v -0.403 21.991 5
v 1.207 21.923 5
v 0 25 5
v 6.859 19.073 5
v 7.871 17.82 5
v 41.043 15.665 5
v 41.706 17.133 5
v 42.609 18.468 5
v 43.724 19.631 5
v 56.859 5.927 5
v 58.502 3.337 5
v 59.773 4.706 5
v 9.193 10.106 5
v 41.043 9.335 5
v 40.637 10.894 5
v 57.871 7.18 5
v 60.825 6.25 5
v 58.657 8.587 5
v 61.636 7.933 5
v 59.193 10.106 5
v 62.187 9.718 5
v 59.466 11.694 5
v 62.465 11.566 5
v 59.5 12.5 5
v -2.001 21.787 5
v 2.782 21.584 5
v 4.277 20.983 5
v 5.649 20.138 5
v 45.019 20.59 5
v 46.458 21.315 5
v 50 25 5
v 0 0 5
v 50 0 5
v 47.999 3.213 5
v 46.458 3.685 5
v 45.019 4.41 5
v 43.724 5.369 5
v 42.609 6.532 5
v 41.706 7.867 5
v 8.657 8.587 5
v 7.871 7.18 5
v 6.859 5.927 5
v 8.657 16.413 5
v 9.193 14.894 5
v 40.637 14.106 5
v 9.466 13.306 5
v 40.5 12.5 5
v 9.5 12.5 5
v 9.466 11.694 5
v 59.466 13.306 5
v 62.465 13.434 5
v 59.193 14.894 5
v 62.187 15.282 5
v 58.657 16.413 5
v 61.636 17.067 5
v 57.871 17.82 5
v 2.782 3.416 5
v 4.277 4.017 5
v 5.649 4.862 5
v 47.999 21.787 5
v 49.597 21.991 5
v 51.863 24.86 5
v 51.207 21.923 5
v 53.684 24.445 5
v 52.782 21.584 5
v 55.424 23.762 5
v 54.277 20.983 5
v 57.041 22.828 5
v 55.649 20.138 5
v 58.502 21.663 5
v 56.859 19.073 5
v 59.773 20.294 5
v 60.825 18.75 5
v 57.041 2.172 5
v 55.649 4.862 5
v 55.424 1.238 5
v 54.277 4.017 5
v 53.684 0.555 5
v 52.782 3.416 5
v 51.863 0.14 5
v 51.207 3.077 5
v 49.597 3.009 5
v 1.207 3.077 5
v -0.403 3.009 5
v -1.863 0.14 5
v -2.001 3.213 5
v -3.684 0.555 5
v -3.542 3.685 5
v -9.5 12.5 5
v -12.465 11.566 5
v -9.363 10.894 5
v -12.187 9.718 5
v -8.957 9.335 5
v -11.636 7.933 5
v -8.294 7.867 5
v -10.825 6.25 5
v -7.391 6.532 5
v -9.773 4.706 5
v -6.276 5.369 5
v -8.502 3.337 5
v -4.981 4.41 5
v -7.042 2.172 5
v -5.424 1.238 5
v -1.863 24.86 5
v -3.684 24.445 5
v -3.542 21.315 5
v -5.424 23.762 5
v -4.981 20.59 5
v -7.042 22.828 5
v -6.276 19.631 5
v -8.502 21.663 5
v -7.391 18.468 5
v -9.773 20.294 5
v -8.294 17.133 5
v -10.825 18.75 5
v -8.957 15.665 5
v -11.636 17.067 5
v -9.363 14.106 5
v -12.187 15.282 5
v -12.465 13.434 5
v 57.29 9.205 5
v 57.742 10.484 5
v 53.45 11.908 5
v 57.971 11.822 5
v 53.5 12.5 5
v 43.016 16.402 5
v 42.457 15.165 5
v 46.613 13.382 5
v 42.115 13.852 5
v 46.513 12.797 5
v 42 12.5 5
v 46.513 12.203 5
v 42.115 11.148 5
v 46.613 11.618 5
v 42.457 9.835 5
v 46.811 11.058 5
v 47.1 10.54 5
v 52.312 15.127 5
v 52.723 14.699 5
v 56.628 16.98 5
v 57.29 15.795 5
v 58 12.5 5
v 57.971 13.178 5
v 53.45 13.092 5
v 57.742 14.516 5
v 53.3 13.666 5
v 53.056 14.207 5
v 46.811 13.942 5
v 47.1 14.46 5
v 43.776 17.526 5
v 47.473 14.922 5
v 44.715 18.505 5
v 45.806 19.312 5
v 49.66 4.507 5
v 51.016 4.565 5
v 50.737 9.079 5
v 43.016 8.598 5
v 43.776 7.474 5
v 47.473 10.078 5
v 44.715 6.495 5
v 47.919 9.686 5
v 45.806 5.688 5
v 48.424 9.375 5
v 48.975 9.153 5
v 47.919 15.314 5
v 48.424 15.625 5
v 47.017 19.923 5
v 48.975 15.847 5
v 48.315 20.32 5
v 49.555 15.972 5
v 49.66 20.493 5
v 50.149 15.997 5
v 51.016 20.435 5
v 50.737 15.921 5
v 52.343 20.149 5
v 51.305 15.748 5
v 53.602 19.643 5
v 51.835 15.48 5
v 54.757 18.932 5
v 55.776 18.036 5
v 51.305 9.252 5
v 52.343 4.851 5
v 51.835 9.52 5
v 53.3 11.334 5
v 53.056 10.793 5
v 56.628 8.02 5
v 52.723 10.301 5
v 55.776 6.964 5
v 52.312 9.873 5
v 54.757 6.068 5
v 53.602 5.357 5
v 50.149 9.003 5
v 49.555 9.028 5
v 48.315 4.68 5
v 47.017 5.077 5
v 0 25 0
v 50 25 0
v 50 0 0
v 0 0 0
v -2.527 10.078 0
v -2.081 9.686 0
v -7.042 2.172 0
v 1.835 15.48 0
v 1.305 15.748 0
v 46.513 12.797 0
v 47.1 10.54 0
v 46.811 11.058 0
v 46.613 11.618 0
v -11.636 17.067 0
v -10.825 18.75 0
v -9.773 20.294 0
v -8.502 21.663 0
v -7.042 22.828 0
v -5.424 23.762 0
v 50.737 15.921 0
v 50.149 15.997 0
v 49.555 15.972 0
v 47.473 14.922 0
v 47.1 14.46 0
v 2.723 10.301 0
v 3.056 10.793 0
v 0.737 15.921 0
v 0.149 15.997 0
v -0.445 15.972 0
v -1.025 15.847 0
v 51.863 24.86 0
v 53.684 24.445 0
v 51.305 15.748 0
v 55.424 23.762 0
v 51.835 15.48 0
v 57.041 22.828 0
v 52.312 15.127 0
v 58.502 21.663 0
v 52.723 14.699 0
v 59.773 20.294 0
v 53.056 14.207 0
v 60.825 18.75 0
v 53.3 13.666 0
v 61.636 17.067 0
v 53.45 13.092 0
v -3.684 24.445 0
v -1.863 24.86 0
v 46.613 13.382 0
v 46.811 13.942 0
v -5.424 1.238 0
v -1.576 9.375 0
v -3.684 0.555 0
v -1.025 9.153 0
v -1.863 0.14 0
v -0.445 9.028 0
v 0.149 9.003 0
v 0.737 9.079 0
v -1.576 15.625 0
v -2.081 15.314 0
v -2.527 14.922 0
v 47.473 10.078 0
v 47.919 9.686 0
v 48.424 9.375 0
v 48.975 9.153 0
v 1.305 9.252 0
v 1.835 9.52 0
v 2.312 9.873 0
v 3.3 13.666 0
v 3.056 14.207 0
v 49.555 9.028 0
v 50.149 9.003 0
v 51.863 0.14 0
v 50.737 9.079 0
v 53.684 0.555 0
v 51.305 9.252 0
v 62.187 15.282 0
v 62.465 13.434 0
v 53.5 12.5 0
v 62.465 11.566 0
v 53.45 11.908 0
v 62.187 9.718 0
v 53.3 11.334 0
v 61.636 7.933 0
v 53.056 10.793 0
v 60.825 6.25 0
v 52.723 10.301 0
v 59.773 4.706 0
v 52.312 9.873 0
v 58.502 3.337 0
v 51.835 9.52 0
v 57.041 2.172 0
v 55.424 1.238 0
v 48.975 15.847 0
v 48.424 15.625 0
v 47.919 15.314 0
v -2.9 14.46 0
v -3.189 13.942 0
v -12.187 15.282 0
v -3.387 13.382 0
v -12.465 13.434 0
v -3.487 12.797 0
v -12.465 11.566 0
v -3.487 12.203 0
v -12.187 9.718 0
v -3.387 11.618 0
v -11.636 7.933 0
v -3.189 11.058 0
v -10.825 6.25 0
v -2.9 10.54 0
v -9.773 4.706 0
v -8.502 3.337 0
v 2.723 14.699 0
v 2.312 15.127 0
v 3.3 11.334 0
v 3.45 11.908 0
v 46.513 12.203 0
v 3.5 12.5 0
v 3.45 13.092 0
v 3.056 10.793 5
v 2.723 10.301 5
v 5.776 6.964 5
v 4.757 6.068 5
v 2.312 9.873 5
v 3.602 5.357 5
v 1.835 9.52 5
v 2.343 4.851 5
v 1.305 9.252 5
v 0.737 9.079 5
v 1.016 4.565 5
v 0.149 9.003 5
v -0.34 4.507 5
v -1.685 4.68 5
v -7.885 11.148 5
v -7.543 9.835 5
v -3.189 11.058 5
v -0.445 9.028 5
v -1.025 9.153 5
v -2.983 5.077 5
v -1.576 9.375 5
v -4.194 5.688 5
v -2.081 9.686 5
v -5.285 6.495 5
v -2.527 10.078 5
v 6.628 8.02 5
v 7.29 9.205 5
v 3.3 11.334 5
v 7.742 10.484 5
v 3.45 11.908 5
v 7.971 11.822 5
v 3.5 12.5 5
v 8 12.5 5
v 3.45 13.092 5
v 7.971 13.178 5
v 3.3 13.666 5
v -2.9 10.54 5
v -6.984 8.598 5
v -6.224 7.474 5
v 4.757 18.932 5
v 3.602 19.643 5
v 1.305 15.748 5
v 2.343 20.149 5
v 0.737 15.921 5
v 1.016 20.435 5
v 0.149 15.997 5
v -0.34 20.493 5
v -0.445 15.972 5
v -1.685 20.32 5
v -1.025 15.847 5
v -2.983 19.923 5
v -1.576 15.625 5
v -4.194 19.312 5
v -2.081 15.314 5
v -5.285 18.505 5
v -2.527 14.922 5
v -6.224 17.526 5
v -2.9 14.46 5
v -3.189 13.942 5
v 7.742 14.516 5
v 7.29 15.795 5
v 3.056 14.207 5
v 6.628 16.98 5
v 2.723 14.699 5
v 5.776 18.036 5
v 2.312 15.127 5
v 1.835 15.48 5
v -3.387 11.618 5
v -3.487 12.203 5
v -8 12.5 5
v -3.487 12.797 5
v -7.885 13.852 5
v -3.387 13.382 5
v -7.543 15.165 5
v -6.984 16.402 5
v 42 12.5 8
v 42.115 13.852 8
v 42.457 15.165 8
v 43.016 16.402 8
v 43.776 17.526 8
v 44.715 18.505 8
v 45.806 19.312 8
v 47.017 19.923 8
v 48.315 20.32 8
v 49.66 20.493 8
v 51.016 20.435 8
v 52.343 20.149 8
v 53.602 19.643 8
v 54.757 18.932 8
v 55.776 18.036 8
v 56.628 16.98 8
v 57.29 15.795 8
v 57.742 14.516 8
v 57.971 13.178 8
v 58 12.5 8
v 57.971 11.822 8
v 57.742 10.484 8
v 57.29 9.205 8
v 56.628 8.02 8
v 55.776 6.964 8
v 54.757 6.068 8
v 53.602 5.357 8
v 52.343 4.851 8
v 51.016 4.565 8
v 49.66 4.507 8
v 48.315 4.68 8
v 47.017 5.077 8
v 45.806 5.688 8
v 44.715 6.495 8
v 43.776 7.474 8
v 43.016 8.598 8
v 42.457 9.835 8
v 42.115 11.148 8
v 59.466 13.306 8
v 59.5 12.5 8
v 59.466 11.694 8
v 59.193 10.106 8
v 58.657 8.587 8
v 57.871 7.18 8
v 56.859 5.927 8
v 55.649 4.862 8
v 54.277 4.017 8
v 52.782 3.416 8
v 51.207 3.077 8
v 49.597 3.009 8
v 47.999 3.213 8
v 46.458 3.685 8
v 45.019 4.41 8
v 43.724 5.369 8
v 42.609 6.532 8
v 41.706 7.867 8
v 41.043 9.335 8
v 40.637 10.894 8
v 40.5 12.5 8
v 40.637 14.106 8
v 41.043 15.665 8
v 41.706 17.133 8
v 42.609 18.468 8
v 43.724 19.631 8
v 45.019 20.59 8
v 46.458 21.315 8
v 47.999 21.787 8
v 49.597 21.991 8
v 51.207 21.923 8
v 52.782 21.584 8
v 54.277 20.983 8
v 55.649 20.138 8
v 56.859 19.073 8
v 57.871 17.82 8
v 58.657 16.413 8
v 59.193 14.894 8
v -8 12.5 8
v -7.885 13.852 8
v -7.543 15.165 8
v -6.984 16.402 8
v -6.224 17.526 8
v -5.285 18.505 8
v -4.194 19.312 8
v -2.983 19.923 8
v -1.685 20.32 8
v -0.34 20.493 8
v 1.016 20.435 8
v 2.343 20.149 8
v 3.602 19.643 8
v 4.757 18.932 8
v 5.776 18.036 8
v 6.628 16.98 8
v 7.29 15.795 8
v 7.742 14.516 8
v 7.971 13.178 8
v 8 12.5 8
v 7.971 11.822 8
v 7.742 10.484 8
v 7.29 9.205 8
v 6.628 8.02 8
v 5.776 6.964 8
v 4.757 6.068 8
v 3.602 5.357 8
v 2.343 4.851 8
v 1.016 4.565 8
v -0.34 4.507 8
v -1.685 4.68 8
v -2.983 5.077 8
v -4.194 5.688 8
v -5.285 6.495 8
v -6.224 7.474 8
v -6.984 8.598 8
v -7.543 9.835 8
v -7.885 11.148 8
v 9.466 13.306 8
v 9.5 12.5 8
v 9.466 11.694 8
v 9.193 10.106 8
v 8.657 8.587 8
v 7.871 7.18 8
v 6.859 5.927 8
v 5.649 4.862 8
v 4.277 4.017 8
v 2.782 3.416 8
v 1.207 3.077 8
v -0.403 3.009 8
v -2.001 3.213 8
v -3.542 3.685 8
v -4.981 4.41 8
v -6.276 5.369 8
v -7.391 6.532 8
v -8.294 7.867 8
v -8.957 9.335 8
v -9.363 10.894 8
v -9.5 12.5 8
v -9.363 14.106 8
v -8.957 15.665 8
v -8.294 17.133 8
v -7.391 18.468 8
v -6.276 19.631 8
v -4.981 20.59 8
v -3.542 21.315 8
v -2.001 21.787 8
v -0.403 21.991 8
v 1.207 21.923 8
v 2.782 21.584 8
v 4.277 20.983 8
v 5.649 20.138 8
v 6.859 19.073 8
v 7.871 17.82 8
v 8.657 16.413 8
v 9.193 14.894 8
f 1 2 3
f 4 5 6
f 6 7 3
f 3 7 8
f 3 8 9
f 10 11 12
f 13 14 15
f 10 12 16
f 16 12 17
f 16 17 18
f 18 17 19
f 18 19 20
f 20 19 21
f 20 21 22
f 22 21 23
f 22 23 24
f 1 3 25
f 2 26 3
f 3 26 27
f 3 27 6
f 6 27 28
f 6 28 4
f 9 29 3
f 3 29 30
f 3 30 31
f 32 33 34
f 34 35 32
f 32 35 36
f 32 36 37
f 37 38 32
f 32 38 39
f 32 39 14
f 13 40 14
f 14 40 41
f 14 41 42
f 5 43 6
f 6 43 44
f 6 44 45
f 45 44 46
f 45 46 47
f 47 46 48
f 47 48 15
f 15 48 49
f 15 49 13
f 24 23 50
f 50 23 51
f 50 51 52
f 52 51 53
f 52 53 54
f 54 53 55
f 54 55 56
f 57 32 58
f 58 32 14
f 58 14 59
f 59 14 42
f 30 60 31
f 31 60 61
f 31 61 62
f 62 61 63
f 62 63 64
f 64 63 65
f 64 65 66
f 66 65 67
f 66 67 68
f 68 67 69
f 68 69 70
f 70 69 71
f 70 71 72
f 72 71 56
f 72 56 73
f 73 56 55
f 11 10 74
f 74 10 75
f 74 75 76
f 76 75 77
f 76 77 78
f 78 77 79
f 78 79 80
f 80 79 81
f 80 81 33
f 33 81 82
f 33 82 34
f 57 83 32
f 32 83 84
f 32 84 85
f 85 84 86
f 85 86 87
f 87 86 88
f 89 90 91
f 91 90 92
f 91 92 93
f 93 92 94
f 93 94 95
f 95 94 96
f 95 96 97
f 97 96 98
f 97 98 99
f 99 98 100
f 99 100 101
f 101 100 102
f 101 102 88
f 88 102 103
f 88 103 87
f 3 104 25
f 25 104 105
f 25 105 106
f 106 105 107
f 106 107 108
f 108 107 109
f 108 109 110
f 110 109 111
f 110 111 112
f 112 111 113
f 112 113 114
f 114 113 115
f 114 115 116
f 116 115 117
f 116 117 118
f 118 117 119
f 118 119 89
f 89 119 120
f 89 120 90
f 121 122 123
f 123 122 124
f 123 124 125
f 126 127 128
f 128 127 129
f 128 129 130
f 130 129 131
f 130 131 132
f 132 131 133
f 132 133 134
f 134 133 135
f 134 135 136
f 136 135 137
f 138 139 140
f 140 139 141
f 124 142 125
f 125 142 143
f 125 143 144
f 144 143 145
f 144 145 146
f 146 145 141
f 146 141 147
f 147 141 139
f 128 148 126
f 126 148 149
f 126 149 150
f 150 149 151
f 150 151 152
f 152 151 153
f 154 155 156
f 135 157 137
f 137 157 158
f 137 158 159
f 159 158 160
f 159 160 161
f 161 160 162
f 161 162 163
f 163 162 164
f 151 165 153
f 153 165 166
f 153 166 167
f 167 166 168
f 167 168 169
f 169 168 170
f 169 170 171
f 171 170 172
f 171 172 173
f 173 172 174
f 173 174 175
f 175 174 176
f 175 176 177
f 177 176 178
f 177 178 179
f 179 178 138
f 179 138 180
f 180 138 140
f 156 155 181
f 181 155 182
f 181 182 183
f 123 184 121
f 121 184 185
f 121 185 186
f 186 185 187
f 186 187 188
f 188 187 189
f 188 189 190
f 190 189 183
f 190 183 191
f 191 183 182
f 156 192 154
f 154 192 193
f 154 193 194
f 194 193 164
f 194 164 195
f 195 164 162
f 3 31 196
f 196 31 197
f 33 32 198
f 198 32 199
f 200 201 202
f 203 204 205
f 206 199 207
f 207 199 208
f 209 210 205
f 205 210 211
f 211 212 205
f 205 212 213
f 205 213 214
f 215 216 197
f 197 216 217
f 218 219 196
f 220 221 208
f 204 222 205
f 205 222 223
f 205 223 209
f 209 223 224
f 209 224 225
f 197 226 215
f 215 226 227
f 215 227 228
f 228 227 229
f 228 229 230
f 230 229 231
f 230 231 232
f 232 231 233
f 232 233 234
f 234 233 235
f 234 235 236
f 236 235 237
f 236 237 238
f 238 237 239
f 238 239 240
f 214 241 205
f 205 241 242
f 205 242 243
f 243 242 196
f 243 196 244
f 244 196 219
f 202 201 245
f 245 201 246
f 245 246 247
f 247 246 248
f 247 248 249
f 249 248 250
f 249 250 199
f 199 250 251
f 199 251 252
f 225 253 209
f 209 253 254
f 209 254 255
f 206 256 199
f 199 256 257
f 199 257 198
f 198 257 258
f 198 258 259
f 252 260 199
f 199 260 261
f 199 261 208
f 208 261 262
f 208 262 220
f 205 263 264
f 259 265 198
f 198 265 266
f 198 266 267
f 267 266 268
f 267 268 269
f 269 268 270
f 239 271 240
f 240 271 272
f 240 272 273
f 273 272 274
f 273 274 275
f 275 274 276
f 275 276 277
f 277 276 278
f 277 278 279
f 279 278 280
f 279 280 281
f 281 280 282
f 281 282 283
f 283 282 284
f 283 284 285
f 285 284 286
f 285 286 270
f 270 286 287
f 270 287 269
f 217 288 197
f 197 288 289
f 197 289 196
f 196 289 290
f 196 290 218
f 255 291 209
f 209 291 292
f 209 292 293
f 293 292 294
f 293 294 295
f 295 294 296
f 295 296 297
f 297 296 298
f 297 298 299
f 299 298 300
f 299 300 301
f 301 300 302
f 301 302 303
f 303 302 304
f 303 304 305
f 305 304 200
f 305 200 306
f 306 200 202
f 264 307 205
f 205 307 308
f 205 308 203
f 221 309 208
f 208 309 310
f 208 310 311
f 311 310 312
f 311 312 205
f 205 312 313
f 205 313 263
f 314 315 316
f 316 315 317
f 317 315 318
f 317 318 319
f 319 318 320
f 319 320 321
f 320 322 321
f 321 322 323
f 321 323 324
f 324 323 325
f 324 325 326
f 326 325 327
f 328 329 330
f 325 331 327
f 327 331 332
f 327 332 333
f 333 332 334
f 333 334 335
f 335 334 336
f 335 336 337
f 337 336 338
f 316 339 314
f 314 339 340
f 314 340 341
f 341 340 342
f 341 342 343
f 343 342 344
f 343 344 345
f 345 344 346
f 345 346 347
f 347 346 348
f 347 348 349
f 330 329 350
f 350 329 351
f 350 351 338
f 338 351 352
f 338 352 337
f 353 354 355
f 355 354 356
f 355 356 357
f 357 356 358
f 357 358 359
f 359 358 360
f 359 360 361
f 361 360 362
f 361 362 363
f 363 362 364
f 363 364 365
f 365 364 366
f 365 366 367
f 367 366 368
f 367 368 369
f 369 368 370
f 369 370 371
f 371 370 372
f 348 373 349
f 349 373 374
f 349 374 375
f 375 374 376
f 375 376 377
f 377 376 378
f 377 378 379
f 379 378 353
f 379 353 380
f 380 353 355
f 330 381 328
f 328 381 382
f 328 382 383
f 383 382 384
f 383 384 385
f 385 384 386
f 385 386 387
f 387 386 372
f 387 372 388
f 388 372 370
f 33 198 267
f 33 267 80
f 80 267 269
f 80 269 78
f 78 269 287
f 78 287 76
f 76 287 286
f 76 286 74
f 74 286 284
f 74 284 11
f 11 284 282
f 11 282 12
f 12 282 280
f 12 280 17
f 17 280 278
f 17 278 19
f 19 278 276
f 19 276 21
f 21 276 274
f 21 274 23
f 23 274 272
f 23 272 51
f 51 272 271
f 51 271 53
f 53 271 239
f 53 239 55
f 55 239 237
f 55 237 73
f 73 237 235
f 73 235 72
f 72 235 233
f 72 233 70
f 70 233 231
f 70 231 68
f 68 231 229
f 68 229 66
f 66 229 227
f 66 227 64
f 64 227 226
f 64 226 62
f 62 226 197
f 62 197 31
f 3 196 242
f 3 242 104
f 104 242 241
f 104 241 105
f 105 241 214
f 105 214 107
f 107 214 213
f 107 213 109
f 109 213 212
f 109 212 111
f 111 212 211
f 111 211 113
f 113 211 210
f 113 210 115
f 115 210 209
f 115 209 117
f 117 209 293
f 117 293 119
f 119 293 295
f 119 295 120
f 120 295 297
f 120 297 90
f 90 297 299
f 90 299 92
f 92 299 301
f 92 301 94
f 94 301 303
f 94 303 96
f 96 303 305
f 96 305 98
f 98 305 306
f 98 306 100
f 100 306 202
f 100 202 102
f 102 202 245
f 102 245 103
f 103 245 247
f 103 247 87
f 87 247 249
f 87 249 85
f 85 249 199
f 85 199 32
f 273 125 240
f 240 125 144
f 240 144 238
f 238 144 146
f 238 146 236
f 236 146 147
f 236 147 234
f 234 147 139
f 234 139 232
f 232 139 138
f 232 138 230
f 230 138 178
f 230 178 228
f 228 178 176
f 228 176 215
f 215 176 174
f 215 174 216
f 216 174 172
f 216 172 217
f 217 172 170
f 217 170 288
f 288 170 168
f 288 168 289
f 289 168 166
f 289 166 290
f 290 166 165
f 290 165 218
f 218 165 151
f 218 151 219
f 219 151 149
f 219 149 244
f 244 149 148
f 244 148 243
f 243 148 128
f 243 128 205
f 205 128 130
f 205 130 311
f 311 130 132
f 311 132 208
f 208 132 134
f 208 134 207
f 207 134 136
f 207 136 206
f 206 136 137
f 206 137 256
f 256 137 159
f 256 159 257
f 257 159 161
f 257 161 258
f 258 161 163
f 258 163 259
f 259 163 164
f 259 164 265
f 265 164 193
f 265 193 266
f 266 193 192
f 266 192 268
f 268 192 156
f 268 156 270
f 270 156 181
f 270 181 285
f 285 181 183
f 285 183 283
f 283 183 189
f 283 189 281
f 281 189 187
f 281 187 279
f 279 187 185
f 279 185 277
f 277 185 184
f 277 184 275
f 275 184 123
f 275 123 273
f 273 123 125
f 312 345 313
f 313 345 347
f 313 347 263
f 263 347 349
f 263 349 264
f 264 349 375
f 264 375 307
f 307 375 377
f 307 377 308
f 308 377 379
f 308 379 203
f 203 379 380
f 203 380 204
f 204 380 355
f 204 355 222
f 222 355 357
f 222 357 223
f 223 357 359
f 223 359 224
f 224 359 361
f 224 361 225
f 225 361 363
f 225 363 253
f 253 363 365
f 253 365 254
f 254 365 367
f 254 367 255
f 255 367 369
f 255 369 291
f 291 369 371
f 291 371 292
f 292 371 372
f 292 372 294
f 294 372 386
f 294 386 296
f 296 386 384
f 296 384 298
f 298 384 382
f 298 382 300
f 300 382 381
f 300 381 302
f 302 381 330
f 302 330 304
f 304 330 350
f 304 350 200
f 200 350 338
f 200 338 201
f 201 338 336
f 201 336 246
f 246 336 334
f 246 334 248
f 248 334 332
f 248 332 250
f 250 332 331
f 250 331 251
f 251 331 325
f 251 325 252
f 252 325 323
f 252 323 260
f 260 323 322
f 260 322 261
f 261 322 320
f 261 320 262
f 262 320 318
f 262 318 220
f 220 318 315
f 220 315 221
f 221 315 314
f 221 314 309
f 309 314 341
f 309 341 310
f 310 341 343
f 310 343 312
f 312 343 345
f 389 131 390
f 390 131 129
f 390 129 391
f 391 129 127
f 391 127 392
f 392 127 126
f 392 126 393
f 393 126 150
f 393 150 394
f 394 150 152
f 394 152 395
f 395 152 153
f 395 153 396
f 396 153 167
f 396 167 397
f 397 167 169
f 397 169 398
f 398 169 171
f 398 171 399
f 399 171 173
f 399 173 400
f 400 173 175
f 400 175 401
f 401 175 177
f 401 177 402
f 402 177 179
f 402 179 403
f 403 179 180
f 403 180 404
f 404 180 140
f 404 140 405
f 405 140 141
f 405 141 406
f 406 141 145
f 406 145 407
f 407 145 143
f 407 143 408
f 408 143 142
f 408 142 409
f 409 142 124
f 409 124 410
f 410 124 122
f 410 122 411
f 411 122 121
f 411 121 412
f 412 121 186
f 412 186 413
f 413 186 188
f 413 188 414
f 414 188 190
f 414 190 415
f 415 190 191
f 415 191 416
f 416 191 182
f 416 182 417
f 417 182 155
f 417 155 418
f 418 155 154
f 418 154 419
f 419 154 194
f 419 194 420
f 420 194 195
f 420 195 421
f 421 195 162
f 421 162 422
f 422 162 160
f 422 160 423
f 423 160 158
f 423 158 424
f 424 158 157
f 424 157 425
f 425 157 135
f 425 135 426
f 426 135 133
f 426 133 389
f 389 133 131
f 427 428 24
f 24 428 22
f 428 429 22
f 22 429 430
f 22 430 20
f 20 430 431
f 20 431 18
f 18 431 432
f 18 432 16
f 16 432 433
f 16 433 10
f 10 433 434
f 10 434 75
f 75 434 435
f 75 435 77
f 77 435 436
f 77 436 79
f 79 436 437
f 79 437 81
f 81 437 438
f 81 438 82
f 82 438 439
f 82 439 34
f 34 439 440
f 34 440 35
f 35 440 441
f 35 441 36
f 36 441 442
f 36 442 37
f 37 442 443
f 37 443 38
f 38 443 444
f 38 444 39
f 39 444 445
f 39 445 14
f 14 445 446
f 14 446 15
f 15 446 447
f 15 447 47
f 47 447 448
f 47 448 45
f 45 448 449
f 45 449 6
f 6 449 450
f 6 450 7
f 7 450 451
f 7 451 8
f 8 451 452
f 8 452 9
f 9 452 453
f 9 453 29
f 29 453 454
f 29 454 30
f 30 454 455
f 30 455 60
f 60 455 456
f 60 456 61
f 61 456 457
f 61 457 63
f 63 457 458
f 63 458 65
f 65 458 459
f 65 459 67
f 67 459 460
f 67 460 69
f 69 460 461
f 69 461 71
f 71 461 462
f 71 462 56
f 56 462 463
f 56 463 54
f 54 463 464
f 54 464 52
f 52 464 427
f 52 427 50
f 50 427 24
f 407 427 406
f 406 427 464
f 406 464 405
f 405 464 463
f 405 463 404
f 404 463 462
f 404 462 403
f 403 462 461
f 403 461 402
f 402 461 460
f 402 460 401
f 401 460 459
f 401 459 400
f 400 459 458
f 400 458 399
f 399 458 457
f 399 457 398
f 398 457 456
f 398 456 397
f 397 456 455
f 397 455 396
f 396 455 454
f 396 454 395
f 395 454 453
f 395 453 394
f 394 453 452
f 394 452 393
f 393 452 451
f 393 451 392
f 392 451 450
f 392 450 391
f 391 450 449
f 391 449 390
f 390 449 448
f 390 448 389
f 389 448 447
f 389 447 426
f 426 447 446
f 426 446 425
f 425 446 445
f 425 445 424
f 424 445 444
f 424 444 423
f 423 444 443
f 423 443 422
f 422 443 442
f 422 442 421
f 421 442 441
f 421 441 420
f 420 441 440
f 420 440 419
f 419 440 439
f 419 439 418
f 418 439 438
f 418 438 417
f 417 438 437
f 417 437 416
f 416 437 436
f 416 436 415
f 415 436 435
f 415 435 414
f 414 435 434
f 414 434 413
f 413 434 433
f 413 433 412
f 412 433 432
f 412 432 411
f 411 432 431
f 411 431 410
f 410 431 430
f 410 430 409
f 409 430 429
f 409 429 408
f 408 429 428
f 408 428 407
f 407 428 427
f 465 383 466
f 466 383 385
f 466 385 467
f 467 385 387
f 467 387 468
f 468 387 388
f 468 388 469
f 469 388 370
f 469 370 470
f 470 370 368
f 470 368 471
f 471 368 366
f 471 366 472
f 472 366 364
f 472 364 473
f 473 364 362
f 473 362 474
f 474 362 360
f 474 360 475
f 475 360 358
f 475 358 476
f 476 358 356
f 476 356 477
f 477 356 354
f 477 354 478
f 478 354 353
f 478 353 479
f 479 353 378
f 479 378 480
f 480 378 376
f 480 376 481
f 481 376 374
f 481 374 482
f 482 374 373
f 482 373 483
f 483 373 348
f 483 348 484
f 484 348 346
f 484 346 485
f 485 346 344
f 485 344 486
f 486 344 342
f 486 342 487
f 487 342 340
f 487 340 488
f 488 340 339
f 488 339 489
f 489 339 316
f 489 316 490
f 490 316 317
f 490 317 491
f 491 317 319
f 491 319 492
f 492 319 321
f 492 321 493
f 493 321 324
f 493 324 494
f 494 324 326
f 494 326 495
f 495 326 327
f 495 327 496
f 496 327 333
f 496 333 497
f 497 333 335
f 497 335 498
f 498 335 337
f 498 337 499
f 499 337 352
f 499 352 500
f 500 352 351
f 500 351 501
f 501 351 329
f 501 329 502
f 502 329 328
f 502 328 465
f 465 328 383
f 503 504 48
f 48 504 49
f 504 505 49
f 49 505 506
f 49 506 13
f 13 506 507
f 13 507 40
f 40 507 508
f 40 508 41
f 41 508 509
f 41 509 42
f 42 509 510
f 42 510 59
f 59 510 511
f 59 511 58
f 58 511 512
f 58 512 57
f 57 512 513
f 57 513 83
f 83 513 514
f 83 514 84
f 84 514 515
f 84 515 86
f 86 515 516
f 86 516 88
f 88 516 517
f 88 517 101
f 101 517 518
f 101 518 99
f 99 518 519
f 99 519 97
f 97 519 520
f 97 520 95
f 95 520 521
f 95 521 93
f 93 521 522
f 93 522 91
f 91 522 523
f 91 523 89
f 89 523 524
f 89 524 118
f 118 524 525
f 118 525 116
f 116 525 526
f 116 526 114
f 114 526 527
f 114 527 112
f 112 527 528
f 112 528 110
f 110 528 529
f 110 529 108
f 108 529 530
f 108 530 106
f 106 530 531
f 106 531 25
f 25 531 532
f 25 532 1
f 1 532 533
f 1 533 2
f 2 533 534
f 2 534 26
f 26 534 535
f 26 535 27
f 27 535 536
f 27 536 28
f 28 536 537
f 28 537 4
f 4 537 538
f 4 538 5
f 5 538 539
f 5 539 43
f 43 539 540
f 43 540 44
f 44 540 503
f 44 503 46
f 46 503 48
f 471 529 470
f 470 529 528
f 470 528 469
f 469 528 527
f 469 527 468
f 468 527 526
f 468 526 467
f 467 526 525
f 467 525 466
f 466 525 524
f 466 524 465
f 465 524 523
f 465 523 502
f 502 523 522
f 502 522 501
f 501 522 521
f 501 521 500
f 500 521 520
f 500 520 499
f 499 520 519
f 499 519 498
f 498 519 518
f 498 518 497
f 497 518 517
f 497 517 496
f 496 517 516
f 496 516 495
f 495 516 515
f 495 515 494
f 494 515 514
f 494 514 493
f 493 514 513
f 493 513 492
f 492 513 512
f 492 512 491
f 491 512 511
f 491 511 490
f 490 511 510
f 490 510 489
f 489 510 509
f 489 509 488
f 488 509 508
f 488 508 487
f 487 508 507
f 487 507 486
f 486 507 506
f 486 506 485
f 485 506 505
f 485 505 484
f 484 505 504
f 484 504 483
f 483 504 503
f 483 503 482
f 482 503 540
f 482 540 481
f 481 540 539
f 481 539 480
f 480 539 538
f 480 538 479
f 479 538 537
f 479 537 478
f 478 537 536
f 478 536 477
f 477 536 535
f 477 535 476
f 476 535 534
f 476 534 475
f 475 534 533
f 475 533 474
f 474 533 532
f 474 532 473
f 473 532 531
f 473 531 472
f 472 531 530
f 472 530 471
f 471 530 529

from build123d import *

# Parameters (mm, degrees)
SKETCH1_R           = 12.5
SKETCH1_W           = 50
SKETCH1_H           = 25
BOSS_EXTRUDE2_DEPTH = 5
CUT_EXTRUDE3_REACH  = 69.5
SKETCH3_R           = 3.5
SKETCH3_3_R         = 9.5
SKETCH3_3_R_2       = 8
BOSS_EXTRUDE3_DEPTH = 3


with BuildPart() as part:
    # Sketch1 → Boss-Extrude2 (new body)
    with BuildSketch(Plane.XY):
        with Locations((0, 12.5)):
            Circle(SKETCH1_R)
        with Locations((50, 12.5)):
            Circle(SKETCH1_R)
        with Locations((25, 12.5)):
            Rectangle(SKETCH1_W, SKETCH1_H)
    extrude(amount=BOSS_EXTRUDE2_DEPTH)

    # Sketch3 → Cut-Extrude3 (cut, up to next)
    with BuildSketch(Plane.XY.offset(5), mode=Mode.PRIVATE) as cut_extrude3_sk1:
        with Locations((0, 12.5)):
            Circle(SKETCH3_R)
    cut_extrude3_tool1 = extrude(cut_extrude3_sk1.sketch, amount=-CUT_EXTRUDE3_REACH, mode=Mode.PRIVATE) & part.part
    # Sketch3 → Cut-Extrude3 (cut, up to next)
    with BuildSketch(Plane.XY.offset(5), mode=Mode.PRIVATE) as cut_extrude3_sk2:
        with Locations((50, 12.5)):
            Circle(SKETCH3_R)
    cut_extrude3_tool2 = extrude(cut_extrude3_sk2.sketch, amount=-CUT_EXTRUDE3_REACH, mode=Mode.PRIVATE) & part.part
    add(cut_extrude3_tool1.solids().sort_by_distance((0, 12.5, 5))[0], mode=Mode.SUBTRACT)
    add(cut_extrude3_tool2.solids().sort_by_distance((50, 12.5, 5))[0], mode=Mode.SUBTRACT)

    # Sketch3<3> → Boss-Extrude3 (add)
    # profile 1 of 2: a face of its own
    with BuildSketch(Plane.XY.offset(5)):
        with Locations((0, 12.5)):
            Circle(SKETCH3_3_R)
        with Locations((0, 12.5)):
            Circle(SKETCH3_3_R_2, mode=Mode.SUBTRACT)
    # profile 2 of 2: a face of its own
    with BuildSketch(Plane.XY.offset(5)):
        with Locations((50, 12.5)):
            Circle(SKETCH3_3_R)
        with Locations((50, 12.5)):
            Circle(SKETCH3_3_R_2, mode=Mode.SUBTRACT)
    extrude(amount=BOSS_EXTRUDE3_DEPTH)


solid = part.part
